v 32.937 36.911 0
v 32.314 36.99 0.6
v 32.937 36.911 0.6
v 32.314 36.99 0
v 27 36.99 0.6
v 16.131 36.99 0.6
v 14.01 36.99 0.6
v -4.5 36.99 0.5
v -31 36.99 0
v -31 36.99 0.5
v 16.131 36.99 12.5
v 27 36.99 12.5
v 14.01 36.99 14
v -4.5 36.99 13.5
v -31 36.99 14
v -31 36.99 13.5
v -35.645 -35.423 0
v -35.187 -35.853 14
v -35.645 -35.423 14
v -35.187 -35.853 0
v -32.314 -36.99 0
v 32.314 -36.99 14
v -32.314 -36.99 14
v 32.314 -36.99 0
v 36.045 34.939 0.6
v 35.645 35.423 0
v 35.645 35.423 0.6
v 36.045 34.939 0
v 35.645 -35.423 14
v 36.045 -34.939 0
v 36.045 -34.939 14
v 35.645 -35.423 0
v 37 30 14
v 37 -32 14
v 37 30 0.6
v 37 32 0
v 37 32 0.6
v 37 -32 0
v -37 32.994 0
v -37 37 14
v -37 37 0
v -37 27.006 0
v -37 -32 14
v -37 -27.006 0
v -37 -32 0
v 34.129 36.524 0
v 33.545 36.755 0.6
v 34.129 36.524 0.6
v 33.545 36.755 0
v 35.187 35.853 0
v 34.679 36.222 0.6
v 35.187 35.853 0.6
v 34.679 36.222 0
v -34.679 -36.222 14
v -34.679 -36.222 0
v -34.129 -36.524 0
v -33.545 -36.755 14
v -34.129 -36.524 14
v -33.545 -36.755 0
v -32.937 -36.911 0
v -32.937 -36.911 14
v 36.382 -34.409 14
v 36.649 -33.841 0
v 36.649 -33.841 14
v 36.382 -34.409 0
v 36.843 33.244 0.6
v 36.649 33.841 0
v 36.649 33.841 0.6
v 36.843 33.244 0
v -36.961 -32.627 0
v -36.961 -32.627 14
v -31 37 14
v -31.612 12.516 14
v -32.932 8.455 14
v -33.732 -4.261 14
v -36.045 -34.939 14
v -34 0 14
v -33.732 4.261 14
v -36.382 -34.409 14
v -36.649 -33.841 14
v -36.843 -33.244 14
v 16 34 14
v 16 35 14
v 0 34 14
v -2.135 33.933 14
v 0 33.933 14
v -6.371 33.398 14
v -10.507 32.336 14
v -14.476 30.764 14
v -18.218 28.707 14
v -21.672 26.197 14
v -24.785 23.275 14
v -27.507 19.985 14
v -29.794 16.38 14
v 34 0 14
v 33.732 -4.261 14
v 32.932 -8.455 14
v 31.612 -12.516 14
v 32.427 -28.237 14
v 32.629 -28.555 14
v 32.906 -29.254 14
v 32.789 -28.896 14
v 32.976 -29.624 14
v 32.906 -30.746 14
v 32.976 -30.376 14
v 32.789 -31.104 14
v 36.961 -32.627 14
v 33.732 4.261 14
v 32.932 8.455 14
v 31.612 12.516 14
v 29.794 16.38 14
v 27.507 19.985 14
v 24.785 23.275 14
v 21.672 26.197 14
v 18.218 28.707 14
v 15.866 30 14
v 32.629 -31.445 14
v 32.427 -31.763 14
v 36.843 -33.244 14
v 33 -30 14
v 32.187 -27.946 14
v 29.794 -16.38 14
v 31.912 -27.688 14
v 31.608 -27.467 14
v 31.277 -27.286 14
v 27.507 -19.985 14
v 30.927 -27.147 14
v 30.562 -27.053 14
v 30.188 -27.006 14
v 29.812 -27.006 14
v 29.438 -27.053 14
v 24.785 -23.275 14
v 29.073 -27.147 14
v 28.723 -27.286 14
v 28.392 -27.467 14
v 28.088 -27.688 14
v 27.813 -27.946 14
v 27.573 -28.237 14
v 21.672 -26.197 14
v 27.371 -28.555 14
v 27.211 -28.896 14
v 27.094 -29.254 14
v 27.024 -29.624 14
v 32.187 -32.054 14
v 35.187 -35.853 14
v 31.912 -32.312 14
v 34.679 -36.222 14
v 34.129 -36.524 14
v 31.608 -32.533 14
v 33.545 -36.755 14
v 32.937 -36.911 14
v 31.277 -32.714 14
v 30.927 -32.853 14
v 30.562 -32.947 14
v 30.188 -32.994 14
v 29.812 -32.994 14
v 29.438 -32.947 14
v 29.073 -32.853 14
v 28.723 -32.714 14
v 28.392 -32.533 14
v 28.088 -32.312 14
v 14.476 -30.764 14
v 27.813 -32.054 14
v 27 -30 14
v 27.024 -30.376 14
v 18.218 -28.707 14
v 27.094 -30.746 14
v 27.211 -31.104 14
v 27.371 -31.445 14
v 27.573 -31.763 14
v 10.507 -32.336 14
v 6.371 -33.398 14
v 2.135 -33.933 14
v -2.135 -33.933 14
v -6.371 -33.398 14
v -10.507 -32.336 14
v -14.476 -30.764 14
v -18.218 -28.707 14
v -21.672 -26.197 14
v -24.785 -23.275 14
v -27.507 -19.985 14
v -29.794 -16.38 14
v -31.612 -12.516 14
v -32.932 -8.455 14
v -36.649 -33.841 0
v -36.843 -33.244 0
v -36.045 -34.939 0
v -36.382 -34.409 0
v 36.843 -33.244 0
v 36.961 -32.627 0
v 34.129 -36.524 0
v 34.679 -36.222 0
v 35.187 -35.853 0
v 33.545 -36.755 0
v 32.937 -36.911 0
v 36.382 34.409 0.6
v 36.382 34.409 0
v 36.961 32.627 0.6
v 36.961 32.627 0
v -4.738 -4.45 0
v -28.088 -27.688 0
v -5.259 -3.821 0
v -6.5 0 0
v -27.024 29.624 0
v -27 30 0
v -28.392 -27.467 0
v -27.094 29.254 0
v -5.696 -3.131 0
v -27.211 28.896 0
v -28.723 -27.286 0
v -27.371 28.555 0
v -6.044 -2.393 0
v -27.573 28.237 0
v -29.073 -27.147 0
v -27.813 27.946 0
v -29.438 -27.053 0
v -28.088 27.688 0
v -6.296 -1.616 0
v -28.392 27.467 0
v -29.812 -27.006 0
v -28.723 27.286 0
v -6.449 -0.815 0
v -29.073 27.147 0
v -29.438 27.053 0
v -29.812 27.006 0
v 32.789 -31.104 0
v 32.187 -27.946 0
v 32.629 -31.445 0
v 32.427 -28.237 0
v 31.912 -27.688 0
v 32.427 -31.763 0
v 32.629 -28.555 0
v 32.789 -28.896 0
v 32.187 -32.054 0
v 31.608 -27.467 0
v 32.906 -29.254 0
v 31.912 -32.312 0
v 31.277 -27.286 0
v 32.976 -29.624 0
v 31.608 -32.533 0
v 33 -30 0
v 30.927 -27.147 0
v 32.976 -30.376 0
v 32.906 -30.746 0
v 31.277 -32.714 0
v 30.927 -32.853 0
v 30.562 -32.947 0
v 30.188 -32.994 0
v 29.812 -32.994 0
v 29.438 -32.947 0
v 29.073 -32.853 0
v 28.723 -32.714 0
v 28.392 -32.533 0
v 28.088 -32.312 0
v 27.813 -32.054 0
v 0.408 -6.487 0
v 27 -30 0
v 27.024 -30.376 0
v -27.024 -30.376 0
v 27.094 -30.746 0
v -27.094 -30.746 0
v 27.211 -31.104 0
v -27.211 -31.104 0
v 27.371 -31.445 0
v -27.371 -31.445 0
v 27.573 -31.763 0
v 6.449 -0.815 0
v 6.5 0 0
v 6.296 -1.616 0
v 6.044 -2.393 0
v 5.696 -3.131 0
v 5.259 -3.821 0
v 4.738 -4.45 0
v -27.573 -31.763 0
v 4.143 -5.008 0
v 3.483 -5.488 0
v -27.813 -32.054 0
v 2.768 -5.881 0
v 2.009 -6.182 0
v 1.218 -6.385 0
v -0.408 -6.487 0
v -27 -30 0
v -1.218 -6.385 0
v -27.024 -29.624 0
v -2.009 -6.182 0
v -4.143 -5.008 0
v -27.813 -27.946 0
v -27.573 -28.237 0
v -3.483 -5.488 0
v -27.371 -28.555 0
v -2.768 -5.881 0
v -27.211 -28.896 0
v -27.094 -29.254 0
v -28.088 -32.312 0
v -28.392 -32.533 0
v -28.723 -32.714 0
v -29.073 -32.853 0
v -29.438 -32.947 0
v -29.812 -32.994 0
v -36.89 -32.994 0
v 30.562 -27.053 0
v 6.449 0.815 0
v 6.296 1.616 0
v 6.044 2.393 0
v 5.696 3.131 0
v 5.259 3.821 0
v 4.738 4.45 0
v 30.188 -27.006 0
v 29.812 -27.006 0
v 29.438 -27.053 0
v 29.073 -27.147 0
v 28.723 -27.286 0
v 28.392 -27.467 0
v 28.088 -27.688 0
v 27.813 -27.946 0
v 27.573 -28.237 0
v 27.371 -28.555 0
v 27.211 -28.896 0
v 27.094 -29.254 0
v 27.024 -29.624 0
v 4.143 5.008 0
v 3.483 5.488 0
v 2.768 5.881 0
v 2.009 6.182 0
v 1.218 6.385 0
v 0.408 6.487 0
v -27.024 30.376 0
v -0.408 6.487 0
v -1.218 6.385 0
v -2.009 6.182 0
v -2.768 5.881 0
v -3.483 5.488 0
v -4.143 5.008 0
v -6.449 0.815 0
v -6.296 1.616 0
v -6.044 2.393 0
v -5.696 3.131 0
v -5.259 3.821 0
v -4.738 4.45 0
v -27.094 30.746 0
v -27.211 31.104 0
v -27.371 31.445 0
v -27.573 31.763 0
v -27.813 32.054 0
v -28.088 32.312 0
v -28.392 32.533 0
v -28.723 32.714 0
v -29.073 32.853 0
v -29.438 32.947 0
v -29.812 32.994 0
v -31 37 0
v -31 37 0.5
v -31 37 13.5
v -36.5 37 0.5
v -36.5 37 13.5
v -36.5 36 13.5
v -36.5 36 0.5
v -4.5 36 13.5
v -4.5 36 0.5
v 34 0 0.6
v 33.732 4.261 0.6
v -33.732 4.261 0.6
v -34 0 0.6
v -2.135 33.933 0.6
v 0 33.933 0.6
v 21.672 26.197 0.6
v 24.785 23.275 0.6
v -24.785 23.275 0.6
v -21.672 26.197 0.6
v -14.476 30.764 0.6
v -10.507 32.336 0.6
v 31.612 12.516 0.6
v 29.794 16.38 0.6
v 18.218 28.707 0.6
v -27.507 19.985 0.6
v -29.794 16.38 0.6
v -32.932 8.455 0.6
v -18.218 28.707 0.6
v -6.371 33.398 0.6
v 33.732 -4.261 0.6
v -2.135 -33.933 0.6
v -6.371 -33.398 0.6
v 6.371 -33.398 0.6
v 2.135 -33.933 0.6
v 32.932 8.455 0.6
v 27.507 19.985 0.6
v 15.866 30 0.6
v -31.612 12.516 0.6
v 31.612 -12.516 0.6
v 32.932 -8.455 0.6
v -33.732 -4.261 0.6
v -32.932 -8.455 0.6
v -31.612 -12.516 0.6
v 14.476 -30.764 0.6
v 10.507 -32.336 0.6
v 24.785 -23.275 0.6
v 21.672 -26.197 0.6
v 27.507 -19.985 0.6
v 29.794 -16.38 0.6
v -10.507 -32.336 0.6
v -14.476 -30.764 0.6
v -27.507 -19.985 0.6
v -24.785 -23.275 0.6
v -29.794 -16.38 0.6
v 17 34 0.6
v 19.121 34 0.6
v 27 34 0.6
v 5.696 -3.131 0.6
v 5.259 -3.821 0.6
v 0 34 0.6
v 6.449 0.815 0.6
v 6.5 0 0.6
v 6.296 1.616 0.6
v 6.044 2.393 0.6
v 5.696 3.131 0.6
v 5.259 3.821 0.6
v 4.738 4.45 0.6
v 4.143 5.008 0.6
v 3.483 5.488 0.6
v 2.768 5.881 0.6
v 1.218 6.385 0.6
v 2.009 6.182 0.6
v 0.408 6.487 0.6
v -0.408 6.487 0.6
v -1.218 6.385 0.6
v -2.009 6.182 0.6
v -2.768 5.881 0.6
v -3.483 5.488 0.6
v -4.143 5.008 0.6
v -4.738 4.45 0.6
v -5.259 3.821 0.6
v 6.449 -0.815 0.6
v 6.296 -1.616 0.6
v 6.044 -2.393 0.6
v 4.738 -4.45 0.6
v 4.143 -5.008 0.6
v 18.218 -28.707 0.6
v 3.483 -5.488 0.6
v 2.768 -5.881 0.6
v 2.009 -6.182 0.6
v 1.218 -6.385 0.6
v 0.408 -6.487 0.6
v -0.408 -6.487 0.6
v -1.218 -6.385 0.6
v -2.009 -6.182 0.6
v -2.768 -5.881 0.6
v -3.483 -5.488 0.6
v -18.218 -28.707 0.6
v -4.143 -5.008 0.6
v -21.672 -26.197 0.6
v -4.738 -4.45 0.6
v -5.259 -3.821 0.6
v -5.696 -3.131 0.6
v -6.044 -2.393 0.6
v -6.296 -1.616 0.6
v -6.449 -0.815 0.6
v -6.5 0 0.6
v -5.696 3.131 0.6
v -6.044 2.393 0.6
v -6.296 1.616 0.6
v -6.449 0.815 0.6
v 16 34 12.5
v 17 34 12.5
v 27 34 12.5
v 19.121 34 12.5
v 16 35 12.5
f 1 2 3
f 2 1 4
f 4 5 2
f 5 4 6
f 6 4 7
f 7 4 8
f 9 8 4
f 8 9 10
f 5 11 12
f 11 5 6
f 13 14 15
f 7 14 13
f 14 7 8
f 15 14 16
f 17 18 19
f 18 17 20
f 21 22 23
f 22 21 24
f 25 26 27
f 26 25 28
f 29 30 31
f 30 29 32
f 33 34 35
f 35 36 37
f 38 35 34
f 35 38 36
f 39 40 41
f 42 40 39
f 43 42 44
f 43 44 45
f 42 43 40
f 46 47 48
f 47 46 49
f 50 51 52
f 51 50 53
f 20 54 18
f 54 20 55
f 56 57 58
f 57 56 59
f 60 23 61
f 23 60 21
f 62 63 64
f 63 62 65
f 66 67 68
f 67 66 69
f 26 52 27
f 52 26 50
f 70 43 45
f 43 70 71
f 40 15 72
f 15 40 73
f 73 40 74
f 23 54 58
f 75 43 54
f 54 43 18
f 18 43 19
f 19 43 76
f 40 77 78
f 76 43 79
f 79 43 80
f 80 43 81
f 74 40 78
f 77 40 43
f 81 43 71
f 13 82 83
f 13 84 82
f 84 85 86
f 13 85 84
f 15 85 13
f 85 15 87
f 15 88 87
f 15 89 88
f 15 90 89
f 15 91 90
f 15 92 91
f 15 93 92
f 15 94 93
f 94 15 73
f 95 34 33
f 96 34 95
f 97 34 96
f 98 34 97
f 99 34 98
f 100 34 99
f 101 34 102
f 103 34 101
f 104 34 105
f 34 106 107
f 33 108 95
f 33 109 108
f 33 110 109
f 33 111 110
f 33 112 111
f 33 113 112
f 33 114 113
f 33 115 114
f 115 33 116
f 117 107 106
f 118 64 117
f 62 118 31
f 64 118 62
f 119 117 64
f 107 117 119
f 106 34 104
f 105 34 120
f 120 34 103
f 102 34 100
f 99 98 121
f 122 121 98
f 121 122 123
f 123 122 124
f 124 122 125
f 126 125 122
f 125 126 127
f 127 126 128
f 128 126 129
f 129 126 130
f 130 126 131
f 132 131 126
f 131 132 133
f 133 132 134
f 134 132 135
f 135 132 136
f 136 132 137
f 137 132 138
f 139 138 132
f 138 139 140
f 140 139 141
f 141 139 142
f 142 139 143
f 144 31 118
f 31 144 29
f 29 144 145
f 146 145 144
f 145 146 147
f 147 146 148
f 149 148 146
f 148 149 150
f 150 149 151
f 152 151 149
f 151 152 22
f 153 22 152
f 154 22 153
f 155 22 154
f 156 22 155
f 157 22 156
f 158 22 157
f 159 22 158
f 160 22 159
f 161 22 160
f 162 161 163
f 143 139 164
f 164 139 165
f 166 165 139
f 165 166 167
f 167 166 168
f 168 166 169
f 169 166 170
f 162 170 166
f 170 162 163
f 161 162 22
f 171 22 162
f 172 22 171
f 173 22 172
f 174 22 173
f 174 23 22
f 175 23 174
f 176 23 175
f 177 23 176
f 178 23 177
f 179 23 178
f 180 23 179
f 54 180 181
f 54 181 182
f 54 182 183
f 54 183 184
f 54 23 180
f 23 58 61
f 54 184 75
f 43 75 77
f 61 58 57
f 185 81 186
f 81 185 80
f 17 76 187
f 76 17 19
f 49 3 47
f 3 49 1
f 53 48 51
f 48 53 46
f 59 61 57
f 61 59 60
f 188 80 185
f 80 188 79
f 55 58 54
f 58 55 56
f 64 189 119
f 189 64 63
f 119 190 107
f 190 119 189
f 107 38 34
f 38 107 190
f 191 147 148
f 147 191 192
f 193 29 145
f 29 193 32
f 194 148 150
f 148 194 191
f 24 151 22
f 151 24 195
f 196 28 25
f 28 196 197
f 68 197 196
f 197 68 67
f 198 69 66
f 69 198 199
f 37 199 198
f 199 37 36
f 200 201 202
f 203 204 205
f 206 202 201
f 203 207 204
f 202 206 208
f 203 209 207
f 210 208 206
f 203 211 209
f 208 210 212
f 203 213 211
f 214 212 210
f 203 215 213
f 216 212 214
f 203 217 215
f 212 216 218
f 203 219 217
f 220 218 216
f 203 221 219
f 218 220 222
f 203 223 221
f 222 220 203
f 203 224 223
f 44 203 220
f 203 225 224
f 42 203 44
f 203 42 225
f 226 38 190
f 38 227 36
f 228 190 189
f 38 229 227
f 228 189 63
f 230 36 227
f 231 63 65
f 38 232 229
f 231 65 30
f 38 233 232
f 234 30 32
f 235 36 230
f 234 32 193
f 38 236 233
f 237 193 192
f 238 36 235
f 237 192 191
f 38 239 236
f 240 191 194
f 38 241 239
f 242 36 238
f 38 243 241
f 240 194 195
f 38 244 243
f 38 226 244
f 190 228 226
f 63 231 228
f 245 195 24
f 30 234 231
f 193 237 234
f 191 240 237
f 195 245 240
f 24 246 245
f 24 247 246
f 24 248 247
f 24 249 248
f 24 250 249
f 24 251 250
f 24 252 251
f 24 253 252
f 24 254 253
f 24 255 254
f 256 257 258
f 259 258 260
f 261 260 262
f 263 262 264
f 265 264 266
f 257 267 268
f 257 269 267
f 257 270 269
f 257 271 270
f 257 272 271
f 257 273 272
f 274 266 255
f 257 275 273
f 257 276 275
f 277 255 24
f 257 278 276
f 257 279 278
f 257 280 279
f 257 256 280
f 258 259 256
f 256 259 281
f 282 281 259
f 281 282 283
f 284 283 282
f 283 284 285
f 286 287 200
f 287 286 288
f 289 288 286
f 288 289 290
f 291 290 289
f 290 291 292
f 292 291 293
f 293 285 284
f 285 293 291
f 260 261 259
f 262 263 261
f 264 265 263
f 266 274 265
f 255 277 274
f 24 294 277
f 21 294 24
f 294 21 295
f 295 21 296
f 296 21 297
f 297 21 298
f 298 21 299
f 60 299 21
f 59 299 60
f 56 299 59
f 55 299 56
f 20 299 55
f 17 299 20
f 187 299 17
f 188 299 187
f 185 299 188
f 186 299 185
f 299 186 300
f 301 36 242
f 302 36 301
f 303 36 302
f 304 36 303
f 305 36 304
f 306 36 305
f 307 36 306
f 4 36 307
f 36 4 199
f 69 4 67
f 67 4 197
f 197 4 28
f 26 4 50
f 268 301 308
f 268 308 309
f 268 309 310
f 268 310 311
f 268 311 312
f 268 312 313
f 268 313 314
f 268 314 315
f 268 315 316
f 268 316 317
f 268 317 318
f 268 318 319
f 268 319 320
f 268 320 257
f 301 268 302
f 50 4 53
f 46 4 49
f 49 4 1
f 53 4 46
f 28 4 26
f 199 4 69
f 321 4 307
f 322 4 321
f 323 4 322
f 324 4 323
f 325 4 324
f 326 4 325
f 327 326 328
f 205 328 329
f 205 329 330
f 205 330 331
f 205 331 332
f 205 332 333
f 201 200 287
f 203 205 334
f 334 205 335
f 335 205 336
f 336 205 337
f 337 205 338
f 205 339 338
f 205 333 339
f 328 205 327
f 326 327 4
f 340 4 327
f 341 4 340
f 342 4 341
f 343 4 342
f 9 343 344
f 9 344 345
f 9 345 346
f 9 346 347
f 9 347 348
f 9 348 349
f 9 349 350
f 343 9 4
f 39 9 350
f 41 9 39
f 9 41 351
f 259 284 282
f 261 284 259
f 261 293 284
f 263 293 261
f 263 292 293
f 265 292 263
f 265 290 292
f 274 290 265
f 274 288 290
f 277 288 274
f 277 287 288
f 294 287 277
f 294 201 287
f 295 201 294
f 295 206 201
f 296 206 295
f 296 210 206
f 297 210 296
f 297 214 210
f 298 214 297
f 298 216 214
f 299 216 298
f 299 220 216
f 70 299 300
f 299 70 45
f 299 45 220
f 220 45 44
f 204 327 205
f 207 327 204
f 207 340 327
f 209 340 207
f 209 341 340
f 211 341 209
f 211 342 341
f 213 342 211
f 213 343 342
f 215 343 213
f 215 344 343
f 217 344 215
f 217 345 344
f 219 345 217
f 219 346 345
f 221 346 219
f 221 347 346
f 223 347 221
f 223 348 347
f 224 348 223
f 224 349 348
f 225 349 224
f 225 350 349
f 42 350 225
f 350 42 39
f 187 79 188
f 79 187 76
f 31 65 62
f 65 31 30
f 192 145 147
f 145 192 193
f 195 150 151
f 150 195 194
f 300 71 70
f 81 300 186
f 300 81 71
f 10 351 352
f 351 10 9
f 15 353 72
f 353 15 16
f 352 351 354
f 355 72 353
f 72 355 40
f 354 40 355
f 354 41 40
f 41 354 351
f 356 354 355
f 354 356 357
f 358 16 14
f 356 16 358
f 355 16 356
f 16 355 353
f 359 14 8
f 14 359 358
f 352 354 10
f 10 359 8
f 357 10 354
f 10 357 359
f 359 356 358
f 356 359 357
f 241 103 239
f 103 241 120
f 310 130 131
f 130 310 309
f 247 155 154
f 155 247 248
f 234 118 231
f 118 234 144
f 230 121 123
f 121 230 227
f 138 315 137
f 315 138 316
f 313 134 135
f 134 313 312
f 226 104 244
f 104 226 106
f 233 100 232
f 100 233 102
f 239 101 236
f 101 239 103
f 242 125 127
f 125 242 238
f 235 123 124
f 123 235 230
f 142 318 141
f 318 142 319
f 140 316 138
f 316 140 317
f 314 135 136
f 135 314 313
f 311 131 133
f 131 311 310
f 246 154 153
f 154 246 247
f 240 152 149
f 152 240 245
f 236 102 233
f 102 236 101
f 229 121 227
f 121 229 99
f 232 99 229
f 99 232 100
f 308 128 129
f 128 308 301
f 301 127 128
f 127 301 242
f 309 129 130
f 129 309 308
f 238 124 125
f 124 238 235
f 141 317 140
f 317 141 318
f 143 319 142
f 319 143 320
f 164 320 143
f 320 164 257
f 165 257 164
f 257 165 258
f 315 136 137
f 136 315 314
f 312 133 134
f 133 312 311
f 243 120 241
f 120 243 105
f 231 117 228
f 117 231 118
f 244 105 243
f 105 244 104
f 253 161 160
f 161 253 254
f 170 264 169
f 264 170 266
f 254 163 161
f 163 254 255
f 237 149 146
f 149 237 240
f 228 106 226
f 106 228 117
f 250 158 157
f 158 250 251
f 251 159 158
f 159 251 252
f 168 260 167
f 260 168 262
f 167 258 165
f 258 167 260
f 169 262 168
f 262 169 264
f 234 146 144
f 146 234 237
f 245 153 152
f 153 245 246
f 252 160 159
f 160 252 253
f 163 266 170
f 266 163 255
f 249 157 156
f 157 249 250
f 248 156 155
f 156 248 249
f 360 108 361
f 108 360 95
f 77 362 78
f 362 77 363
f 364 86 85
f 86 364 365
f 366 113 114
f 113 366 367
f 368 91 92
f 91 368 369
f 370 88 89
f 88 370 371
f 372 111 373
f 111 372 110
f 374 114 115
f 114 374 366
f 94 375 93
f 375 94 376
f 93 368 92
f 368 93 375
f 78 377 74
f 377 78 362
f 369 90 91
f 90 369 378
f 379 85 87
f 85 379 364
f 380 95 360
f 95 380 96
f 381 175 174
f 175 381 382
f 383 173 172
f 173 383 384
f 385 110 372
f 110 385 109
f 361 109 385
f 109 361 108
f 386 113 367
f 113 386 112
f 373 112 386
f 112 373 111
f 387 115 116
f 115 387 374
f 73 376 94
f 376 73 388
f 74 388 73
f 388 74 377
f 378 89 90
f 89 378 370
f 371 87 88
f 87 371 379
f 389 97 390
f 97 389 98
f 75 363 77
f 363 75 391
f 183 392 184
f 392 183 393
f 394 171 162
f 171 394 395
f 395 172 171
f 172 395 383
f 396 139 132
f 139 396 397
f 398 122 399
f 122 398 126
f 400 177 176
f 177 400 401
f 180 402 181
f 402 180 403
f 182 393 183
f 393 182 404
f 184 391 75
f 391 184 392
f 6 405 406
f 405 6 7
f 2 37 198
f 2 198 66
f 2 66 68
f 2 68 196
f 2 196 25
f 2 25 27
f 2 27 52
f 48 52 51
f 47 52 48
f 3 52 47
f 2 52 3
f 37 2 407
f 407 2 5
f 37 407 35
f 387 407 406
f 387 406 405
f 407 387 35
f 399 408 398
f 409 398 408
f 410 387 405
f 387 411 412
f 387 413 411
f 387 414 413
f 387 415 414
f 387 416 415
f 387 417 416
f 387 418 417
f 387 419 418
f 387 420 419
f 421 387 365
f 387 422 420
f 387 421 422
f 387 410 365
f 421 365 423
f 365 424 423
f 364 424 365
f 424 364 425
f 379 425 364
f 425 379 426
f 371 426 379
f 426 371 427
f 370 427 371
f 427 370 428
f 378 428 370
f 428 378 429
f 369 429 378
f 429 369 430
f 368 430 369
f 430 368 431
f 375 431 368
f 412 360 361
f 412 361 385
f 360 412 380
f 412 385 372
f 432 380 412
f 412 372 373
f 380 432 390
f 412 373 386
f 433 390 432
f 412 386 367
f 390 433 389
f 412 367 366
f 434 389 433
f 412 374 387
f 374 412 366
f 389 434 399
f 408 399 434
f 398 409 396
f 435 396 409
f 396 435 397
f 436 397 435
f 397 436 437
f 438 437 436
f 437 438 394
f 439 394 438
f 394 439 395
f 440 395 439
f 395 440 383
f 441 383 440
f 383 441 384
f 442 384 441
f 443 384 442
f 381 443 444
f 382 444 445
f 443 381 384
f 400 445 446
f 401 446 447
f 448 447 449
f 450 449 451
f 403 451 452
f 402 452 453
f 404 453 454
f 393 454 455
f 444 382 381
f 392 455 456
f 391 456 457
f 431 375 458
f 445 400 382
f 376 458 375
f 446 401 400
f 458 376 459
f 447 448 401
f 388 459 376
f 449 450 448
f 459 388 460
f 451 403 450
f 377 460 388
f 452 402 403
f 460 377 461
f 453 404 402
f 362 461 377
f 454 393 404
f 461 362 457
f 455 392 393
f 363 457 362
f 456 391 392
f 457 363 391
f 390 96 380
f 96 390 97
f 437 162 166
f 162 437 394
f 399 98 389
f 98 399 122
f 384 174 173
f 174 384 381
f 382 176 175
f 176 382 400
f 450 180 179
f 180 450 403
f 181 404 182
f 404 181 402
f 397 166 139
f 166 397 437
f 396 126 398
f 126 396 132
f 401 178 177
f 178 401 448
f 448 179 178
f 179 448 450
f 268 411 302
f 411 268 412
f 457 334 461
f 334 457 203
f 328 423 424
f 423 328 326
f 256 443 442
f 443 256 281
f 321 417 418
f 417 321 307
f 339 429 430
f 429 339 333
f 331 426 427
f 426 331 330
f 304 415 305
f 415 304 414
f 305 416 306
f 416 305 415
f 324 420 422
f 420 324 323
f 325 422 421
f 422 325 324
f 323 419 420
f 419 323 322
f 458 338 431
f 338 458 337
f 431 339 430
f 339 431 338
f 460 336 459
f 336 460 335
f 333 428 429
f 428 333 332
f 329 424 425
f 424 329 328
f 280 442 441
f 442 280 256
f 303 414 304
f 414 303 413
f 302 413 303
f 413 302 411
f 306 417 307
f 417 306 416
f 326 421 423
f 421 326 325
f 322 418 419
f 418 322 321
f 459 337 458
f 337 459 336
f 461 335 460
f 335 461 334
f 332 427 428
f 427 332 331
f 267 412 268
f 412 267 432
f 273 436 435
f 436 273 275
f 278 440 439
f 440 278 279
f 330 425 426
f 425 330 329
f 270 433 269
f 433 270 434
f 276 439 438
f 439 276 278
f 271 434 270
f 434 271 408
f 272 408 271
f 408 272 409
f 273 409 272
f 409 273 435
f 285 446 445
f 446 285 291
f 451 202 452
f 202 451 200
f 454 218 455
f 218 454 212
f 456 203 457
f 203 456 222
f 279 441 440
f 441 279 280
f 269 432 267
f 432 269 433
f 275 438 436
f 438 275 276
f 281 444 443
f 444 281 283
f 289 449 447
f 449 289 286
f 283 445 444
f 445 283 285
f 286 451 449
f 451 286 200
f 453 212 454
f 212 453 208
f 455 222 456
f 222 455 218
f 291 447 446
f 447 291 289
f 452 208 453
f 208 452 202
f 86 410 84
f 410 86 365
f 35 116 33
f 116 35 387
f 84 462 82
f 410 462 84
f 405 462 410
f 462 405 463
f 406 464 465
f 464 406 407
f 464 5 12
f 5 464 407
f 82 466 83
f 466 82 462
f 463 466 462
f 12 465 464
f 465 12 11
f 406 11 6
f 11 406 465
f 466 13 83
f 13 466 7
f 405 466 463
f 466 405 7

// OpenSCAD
$fn = 50;


difference() {
	union() {
		hull() {
			translate(v = [-32.0000000000, 32.0000000000, 0]) {
				cylinder(h = 14, r = 5);
			}
			translate(v = [32.0000000000, 32.0000000000, 0]) {
				cylinder(h = 14, r = 5);
			}
			translate(v = [-32.0000000000, -32.0000000000, 0]) {
				cylinder(h = 14, r = 5);
			}
			translate(v = [32.0000000000, -32.0000000000, 0]) {
				cylinder(h = 14, r = 5);
			}
		}
		translate(v = [-37.0000000000, 31.0000000000, 0]) {
			cube(size = [6, 6, 14]);
		}
	}
	union() {
		translate(v = [-37.5000000000, -30.0000000000, -250.0000000000]) {
			rotate(a = [0, 0, 0]) {
				difference() {
					union() {
						hull() {
							translate(v = [7.5000000000, 0, 0]) {
								cylinder(h = 250, r = 3.0000000000, r1 = 3.0000000000, r2 = 3.0000000000);
							}
							translate(v = [-7.5000000000, 0, 0]) {
								cylinder(h = 250, r = 3.0000000000, r1 = 3.0000000000, r2 = 3.0000000000);
							}
						}
					}
					union();
				}
			}
		}
		translate(v = [-37.5000000000, 30.0000000000, -250.0000000000]) {
			rotate(a = [0, 0, 0]) {
				difference() {
					union() {
						hull() {
							translate(v = [7.5000000000, 0, 0]) {
								cylinder(h = 250, r = 3.0000000000, r1 = 3.0000000000, r2 = 3.0000000000);
							}
							translate(v = [-7.5000000000, 0, 0]) {
								cylinder(h = 250, r = 3.0000000000, r1 = 3.0000000000, r2 = 3.0000000000);
							}
						}
					}
					union();
				}
			}
		}
		translate(v = [-36.5000000000, 36.0000000000, 0.5000000000]) {
			cube(size = [32, 1, 13.0000000000]);
		}
		translate(v = [30.0000000000, -30.0000000000, -50.0000000000]) {
			cylinder(h = 100, r = 3.0000000000);
		}
		translate(v = [0, 0, 0.6000000000]) {
			cylinder(h = 16.4000000000, r = 34.0000000000);
		}
		translate(v = [0, 0, -7.0000000000]) {
			cylinder(h = 14, r = 6.5000000000);
		}
		translate(v = [0.0000000000, 30.0000000000, 0.6000000000]) {
			cube(size = [37.0000000000, 4, 16.4000000000]);
		}
		translate(v = [27.0000000000, 30.0000000000, 0.6000000000]) {
			cube(size = [10, 7, 16.4000000000]);
		}
		translate(v = [16.0000000000, 30.0000000000, 12.5000000000]) {
			cube(size = [21, 7, 1.5000000000]);
		}
		translate(v = [13.2500000000, 37.7500000000, 0.6000000000]) {
			rotate(a = [0, 0, -45]) {
				cube(size = [7.5000000000, 1.5000000000, 16.4000000000]);
			}
		}
		translate(v = [7.0610000000, 28.0000000000, 0.6000000000]) {
			cube(size = [7.5000000000, 2, 13.4000000000]);
		}
	}
}
